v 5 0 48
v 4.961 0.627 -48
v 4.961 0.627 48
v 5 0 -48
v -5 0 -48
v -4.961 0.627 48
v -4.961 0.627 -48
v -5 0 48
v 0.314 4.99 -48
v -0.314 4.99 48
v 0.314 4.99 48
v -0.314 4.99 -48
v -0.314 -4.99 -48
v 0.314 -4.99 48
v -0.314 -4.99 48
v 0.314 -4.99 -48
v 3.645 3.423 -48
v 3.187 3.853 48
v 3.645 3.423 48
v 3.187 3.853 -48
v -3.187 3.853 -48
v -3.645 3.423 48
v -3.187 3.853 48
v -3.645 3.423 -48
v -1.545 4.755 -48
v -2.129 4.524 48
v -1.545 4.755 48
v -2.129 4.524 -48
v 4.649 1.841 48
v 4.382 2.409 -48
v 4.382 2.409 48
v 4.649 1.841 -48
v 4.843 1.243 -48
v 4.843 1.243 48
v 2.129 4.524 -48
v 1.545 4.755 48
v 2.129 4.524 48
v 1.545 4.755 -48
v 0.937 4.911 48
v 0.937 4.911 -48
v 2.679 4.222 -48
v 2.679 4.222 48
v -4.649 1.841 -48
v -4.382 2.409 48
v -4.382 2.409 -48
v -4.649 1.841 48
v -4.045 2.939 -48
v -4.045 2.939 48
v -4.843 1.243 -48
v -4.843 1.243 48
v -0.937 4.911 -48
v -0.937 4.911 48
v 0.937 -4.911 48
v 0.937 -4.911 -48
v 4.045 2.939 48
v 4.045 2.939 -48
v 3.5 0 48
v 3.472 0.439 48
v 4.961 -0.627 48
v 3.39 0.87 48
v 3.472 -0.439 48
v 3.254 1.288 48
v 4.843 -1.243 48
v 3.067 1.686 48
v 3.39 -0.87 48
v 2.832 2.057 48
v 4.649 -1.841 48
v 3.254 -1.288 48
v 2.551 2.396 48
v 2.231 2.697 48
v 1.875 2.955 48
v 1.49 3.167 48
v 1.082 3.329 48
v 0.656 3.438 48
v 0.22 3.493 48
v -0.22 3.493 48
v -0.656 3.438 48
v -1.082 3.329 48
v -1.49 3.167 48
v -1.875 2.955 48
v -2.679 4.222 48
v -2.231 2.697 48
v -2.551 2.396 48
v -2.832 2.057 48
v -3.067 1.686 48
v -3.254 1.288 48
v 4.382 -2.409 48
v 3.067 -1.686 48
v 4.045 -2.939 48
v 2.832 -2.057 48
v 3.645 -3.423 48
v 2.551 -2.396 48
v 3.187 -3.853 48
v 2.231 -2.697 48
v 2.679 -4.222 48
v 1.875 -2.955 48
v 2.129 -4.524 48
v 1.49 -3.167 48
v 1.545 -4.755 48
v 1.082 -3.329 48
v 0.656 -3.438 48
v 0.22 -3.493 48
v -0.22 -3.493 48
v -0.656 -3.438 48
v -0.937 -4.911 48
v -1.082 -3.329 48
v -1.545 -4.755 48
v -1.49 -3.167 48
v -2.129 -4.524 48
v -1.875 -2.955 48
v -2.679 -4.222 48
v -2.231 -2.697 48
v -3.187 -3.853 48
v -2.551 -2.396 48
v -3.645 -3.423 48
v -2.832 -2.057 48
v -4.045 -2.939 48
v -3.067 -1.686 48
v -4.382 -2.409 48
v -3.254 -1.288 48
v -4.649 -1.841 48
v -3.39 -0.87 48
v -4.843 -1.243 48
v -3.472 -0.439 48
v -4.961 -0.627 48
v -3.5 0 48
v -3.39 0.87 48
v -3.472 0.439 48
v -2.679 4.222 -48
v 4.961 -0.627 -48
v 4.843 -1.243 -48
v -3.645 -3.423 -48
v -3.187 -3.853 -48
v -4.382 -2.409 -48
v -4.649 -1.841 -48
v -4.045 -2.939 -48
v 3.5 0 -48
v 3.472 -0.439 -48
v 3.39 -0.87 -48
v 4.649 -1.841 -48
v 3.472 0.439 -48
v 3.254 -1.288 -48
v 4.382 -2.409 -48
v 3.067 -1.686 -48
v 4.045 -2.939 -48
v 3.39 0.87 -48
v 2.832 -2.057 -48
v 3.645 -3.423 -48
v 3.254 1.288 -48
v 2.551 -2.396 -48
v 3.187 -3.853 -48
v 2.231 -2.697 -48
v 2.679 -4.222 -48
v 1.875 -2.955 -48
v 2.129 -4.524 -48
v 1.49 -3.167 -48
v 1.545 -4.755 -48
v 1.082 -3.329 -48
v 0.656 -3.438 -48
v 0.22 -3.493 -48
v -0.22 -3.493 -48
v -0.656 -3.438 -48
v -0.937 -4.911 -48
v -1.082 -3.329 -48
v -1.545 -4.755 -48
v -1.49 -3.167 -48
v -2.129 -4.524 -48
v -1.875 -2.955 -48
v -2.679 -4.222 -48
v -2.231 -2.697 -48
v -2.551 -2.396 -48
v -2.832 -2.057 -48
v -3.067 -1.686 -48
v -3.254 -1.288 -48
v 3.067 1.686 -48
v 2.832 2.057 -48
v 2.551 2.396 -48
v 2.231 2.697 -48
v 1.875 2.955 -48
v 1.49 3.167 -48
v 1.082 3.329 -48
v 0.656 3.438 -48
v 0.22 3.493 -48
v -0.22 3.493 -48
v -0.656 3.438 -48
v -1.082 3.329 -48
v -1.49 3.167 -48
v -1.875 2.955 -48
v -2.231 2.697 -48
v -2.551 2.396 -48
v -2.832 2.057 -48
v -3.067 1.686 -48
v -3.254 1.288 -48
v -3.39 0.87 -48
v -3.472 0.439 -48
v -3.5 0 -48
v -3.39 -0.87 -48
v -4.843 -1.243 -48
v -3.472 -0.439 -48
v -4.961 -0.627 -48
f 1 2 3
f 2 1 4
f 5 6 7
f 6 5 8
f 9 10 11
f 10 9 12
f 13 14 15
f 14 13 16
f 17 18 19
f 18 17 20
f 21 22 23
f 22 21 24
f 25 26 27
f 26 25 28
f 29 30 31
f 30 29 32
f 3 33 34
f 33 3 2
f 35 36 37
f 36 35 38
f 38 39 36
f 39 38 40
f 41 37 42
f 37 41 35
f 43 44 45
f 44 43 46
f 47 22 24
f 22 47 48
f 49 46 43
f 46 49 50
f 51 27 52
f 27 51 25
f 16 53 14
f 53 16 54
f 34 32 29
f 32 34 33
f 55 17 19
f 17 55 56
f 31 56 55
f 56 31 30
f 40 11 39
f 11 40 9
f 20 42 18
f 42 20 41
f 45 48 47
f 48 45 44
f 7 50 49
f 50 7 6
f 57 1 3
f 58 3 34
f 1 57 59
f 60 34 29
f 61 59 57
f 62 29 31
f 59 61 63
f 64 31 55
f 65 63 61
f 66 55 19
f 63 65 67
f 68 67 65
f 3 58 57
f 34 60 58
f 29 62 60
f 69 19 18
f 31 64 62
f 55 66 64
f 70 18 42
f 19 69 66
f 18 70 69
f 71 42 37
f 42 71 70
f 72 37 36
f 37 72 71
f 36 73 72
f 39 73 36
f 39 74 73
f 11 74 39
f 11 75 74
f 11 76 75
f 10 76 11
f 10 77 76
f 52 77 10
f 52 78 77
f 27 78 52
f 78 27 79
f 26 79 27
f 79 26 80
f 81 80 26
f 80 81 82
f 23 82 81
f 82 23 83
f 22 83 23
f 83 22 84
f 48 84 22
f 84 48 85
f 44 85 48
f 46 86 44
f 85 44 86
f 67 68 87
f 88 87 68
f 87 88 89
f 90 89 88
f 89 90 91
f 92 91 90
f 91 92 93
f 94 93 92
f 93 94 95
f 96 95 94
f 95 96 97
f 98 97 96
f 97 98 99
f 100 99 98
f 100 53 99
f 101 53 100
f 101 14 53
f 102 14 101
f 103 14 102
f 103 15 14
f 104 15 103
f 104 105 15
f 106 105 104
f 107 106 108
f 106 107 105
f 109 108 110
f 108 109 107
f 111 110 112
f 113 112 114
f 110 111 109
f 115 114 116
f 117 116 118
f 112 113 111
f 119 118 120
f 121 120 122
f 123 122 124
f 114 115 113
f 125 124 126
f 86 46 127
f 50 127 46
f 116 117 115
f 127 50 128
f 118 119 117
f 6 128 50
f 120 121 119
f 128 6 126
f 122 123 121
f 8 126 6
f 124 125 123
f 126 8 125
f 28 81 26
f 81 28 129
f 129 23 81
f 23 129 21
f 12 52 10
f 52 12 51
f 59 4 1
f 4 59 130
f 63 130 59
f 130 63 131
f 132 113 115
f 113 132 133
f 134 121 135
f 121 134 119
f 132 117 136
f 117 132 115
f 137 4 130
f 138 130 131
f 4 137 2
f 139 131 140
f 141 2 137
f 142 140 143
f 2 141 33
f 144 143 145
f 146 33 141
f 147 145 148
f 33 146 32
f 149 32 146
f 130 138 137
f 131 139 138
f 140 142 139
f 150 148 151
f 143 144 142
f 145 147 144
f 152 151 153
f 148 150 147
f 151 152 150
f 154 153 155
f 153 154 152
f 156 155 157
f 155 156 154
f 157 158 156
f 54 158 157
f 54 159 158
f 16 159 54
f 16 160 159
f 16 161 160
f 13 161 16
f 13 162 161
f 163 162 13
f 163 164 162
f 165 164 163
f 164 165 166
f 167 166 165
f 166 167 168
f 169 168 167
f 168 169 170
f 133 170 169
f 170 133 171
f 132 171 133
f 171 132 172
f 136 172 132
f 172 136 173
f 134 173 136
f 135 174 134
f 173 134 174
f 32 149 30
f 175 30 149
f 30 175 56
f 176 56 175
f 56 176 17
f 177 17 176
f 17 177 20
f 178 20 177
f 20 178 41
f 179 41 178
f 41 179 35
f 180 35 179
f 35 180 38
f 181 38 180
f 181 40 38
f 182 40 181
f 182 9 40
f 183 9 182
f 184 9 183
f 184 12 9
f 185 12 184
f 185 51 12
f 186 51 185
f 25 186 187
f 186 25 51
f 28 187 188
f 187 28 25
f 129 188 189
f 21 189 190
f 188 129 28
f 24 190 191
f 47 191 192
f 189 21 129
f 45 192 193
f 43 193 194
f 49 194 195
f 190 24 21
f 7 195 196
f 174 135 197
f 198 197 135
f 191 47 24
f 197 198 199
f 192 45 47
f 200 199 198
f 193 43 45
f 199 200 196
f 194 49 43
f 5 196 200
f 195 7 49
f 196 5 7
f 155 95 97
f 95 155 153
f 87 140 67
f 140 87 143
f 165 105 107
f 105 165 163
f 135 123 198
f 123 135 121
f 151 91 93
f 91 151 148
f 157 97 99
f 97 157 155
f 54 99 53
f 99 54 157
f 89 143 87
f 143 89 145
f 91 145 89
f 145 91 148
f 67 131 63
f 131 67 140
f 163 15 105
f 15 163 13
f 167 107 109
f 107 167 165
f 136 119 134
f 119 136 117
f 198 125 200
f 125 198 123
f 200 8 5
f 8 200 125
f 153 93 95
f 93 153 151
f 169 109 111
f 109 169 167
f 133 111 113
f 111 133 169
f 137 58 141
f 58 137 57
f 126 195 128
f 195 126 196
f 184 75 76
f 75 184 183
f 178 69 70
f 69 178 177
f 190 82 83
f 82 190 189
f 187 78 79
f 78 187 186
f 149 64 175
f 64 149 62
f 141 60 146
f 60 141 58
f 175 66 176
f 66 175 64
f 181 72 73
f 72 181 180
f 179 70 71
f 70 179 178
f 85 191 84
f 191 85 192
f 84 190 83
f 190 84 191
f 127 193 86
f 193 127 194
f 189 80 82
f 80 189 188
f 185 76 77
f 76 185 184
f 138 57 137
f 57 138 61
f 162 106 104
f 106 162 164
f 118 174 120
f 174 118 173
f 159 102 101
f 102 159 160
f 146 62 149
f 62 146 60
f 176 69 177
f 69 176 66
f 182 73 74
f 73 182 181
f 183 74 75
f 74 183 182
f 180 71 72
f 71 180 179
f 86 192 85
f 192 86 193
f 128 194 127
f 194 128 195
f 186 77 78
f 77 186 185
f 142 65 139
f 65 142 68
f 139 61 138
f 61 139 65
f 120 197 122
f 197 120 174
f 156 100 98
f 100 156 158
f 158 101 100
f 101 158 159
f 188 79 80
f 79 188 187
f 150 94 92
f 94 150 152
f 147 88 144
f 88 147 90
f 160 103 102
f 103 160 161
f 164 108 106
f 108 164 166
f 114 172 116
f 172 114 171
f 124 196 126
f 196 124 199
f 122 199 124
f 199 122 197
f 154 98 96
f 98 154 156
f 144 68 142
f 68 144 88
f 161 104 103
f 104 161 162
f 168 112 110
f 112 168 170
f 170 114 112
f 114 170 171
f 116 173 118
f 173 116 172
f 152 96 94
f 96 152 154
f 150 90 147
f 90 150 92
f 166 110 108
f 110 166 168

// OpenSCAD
$fn = 50;


difference() {
	union() {
		translate(v = [0, 0, -48.0000000000]) {
			cylinder(h = 96, r = 5.0000000000);
		}
	}
	union() {
		translate(v = [0, 0, -100.0000000000]) {
			cylinder(h = 200, r = 3.5000000000);
		}
	}
}
